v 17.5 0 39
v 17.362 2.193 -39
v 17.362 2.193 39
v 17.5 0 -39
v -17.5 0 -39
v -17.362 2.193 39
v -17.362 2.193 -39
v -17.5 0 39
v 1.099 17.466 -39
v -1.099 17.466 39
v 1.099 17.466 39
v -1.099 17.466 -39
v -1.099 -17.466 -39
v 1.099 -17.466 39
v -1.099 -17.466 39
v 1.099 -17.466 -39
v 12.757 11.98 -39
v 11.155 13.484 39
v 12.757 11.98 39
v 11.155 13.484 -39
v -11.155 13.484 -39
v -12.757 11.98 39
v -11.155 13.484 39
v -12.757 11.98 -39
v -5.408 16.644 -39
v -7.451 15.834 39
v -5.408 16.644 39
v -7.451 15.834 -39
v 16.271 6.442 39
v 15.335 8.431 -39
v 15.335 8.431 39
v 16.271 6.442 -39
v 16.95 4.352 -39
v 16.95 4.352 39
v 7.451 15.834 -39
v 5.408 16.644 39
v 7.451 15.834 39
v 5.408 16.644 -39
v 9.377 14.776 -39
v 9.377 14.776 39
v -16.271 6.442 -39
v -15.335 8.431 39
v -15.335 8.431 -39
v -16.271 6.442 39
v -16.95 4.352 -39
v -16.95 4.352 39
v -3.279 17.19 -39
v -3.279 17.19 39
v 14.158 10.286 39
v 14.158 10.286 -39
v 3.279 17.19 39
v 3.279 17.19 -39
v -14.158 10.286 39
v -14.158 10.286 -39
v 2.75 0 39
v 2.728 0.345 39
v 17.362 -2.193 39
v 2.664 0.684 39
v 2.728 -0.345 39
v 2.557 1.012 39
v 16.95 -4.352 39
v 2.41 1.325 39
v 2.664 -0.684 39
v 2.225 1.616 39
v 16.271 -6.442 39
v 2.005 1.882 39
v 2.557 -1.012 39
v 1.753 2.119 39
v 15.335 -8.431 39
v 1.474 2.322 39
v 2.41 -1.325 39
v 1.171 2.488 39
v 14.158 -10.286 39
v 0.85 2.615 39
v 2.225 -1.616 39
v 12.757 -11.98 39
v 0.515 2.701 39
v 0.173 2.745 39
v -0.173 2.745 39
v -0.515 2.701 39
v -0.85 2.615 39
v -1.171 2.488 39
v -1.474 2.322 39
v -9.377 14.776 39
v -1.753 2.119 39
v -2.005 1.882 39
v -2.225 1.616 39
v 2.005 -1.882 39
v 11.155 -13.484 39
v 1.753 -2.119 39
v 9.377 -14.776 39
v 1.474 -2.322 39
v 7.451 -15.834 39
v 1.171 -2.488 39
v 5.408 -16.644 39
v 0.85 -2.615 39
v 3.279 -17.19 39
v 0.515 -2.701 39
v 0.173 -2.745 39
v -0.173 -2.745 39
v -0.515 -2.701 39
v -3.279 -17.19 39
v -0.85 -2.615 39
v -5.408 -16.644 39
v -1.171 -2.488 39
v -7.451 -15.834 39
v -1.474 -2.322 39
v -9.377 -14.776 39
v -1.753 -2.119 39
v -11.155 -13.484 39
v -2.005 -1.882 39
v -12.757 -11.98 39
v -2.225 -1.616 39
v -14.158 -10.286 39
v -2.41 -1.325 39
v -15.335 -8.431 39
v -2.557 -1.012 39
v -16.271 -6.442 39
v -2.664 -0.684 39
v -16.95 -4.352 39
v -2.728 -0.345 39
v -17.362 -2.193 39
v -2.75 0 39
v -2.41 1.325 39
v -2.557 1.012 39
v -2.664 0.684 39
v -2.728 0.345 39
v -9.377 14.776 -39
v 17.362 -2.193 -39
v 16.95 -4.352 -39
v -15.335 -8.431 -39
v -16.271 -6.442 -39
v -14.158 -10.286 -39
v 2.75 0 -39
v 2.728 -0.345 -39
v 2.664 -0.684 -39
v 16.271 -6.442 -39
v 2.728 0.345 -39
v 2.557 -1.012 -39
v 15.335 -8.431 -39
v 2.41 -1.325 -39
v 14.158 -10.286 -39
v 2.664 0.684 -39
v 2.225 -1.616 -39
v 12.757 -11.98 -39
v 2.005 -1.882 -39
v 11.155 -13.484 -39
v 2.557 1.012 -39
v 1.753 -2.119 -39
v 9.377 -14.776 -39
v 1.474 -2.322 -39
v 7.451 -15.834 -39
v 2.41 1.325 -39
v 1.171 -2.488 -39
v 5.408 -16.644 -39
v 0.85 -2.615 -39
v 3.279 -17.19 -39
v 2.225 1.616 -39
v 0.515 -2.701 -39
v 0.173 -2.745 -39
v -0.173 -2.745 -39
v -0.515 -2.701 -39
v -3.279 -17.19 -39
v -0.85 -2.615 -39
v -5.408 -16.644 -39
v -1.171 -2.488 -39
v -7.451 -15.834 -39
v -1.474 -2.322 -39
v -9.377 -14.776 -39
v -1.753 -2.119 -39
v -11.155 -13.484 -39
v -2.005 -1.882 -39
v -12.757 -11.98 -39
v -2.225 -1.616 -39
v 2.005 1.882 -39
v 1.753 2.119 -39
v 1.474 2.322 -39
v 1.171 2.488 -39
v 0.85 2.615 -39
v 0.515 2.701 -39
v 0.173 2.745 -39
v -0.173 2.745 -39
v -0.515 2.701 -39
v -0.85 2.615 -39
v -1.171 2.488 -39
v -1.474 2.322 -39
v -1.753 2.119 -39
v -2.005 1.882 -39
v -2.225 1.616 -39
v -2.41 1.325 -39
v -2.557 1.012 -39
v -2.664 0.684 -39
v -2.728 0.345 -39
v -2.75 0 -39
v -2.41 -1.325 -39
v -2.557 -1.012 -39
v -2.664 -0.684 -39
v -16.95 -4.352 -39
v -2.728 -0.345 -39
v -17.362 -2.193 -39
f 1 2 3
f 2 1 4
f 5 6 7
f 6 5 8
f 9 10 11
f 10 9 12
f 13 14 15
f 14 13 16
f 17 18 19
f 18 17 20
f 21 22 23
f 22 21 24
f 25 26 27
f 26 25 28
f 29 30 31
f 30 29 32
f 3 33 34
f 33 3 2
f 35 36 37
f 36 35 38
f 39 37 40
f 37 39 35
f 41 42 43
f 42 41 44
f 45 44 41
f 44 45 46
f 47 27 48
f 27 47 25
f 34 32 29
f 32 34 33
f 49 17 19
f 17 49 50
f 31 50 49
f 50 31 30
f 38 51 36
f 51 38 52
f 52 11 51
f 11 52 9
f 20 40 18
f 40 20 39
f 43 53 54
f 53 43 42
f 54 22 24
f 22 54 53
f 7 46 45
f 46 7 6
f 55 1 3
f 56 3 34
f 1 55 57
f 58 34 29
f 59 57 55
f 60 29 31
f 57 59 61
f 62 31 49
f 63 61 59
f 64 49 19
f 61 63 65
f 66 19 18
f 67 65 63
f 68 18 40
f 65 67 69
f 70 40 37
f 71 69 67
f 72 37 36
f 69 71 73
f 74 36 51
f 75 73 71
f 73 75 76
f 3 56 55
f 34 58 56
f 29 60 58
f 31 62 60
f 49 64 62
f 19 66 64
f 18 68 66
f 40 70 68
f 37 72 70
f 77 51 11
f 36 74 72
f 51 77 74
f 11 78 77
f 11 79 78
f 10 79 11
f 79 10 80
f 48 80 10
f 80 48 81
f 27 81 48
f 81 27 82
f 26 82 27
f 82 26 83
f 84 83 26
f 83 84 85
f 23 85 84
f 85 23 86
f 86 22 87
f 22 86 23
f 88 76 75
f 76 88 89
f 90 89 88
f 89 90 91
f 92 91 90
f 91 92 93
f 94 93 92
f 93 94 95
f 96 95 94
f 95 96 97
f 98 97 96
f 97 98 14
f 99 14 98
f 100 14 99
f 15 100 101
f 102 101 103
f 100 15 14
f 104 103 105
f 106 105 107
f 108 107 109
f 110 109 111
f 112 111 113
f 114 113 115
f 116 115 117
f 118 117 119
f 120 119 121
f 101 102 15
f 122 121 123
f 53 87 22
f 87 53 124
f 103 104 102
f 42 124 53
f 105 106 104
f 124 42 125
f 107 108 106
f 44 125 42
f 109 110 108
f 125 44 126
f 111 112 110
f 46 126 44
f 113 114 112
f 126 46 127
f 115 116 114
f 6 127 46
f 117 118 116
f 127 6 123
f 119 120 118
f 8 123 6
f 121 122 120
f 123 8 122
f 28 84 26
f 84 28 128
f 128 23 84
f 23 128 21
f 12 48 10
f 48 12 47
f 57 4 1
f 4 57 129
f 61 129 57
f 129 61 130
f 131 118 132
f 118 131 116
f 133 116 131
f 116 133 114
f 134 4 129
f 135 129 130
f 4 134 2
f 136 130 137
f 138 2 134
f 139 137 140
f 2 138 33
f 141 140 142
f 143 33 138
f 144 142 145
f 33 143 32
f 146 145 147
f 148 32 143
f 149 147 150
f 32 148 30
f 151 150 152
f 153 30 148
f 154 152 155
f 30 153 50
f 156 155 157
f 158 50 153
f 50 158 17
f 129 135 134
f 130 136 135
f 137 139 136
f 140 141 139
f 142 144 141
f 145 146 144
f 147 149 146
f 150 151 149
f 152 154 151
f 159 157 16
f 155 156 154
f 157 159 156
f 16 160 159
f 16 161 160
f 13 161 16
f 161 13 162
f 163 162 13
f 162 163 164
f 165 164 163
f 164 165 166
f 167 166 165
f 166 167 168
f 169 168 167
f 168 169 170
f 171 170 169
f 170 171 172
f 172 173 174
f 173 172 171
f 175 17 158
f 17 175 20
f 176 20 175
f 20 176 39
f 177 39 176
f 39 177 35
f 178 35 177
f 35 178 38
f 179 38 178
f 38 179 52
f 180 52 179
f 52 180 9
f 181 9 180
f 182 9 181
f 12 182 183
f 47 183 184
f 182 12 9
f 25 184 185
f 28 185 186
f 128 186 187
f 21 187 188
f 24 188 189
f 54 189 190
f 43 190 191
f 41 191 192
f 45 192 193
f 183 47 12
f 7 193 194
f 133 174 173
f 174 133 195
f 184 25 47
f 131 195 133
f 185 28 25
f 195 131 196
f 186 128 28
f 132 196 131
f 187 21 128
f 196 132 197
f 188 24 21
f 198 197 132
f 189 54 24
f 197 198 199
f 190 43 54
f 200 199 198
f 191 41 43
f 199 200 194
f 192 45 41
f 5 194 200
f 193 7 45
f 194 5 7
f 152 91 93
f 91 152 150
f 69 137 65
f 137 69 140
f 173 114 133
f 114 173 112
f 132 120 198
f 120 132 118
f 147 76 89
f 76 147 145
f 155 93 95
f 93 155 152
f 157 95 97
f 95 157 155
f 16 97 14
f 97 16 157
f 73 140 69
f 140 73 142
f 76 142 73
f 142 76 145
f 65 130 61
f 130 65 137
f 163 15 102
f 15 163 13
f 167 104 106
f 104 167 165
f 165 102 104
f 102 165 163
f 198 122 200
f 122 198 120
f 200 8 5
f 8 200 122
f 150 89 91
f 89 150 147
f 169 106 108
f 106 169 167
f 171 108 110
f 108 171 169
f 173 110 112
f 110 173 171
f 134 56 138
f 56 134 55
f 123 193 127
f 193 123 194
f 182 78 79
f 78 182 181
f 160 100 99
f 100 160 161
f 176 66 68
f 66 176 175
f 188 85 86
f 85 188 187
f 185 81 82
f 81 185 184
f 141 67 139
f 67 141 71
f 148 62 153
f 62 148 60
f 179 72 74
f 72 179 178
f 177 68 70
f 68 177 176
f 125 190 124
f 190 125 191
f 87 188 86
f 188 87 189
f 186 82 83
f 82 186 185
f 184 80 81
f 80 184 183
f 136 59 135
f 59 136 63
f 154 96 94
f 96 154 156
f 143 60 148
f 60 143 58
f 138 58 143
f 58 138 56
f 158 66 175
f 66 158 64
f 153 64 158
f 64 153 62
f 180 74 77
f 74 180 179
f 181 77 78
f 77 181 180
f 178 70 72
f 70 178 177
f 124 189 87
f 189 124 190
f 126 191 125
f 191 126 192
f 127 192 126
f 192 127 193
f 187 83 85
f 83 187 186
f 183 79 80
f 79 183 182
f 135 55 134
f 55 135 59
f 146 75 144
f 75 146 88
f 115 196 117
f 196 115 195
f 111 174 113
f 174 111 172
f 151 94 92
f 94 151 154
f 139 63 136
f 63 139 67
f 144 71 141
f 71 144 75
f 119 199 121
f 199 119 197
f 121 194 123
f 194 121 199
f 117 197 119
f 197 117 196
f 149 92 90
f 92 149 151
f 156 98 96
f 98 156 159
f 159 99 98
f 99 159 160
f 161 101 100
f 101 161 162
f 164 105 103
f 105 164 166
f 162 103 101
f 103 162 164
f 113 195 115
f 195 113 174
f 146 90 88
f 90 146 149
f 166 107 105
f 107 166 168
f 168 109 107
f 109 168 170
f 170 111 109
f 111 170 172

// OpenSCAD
$fn = 50;


difference() {
	union() {
		translate(v = [0, 0, -39.0000000000]) {
			cylinder(h = 78, r = 17.5000000000);
		}
	}
	union() {
		translate(v = [0, 0, -100.0000000000]) {
			cylinder(h = 200, r = 2.7500000000);
		}
	}
}
